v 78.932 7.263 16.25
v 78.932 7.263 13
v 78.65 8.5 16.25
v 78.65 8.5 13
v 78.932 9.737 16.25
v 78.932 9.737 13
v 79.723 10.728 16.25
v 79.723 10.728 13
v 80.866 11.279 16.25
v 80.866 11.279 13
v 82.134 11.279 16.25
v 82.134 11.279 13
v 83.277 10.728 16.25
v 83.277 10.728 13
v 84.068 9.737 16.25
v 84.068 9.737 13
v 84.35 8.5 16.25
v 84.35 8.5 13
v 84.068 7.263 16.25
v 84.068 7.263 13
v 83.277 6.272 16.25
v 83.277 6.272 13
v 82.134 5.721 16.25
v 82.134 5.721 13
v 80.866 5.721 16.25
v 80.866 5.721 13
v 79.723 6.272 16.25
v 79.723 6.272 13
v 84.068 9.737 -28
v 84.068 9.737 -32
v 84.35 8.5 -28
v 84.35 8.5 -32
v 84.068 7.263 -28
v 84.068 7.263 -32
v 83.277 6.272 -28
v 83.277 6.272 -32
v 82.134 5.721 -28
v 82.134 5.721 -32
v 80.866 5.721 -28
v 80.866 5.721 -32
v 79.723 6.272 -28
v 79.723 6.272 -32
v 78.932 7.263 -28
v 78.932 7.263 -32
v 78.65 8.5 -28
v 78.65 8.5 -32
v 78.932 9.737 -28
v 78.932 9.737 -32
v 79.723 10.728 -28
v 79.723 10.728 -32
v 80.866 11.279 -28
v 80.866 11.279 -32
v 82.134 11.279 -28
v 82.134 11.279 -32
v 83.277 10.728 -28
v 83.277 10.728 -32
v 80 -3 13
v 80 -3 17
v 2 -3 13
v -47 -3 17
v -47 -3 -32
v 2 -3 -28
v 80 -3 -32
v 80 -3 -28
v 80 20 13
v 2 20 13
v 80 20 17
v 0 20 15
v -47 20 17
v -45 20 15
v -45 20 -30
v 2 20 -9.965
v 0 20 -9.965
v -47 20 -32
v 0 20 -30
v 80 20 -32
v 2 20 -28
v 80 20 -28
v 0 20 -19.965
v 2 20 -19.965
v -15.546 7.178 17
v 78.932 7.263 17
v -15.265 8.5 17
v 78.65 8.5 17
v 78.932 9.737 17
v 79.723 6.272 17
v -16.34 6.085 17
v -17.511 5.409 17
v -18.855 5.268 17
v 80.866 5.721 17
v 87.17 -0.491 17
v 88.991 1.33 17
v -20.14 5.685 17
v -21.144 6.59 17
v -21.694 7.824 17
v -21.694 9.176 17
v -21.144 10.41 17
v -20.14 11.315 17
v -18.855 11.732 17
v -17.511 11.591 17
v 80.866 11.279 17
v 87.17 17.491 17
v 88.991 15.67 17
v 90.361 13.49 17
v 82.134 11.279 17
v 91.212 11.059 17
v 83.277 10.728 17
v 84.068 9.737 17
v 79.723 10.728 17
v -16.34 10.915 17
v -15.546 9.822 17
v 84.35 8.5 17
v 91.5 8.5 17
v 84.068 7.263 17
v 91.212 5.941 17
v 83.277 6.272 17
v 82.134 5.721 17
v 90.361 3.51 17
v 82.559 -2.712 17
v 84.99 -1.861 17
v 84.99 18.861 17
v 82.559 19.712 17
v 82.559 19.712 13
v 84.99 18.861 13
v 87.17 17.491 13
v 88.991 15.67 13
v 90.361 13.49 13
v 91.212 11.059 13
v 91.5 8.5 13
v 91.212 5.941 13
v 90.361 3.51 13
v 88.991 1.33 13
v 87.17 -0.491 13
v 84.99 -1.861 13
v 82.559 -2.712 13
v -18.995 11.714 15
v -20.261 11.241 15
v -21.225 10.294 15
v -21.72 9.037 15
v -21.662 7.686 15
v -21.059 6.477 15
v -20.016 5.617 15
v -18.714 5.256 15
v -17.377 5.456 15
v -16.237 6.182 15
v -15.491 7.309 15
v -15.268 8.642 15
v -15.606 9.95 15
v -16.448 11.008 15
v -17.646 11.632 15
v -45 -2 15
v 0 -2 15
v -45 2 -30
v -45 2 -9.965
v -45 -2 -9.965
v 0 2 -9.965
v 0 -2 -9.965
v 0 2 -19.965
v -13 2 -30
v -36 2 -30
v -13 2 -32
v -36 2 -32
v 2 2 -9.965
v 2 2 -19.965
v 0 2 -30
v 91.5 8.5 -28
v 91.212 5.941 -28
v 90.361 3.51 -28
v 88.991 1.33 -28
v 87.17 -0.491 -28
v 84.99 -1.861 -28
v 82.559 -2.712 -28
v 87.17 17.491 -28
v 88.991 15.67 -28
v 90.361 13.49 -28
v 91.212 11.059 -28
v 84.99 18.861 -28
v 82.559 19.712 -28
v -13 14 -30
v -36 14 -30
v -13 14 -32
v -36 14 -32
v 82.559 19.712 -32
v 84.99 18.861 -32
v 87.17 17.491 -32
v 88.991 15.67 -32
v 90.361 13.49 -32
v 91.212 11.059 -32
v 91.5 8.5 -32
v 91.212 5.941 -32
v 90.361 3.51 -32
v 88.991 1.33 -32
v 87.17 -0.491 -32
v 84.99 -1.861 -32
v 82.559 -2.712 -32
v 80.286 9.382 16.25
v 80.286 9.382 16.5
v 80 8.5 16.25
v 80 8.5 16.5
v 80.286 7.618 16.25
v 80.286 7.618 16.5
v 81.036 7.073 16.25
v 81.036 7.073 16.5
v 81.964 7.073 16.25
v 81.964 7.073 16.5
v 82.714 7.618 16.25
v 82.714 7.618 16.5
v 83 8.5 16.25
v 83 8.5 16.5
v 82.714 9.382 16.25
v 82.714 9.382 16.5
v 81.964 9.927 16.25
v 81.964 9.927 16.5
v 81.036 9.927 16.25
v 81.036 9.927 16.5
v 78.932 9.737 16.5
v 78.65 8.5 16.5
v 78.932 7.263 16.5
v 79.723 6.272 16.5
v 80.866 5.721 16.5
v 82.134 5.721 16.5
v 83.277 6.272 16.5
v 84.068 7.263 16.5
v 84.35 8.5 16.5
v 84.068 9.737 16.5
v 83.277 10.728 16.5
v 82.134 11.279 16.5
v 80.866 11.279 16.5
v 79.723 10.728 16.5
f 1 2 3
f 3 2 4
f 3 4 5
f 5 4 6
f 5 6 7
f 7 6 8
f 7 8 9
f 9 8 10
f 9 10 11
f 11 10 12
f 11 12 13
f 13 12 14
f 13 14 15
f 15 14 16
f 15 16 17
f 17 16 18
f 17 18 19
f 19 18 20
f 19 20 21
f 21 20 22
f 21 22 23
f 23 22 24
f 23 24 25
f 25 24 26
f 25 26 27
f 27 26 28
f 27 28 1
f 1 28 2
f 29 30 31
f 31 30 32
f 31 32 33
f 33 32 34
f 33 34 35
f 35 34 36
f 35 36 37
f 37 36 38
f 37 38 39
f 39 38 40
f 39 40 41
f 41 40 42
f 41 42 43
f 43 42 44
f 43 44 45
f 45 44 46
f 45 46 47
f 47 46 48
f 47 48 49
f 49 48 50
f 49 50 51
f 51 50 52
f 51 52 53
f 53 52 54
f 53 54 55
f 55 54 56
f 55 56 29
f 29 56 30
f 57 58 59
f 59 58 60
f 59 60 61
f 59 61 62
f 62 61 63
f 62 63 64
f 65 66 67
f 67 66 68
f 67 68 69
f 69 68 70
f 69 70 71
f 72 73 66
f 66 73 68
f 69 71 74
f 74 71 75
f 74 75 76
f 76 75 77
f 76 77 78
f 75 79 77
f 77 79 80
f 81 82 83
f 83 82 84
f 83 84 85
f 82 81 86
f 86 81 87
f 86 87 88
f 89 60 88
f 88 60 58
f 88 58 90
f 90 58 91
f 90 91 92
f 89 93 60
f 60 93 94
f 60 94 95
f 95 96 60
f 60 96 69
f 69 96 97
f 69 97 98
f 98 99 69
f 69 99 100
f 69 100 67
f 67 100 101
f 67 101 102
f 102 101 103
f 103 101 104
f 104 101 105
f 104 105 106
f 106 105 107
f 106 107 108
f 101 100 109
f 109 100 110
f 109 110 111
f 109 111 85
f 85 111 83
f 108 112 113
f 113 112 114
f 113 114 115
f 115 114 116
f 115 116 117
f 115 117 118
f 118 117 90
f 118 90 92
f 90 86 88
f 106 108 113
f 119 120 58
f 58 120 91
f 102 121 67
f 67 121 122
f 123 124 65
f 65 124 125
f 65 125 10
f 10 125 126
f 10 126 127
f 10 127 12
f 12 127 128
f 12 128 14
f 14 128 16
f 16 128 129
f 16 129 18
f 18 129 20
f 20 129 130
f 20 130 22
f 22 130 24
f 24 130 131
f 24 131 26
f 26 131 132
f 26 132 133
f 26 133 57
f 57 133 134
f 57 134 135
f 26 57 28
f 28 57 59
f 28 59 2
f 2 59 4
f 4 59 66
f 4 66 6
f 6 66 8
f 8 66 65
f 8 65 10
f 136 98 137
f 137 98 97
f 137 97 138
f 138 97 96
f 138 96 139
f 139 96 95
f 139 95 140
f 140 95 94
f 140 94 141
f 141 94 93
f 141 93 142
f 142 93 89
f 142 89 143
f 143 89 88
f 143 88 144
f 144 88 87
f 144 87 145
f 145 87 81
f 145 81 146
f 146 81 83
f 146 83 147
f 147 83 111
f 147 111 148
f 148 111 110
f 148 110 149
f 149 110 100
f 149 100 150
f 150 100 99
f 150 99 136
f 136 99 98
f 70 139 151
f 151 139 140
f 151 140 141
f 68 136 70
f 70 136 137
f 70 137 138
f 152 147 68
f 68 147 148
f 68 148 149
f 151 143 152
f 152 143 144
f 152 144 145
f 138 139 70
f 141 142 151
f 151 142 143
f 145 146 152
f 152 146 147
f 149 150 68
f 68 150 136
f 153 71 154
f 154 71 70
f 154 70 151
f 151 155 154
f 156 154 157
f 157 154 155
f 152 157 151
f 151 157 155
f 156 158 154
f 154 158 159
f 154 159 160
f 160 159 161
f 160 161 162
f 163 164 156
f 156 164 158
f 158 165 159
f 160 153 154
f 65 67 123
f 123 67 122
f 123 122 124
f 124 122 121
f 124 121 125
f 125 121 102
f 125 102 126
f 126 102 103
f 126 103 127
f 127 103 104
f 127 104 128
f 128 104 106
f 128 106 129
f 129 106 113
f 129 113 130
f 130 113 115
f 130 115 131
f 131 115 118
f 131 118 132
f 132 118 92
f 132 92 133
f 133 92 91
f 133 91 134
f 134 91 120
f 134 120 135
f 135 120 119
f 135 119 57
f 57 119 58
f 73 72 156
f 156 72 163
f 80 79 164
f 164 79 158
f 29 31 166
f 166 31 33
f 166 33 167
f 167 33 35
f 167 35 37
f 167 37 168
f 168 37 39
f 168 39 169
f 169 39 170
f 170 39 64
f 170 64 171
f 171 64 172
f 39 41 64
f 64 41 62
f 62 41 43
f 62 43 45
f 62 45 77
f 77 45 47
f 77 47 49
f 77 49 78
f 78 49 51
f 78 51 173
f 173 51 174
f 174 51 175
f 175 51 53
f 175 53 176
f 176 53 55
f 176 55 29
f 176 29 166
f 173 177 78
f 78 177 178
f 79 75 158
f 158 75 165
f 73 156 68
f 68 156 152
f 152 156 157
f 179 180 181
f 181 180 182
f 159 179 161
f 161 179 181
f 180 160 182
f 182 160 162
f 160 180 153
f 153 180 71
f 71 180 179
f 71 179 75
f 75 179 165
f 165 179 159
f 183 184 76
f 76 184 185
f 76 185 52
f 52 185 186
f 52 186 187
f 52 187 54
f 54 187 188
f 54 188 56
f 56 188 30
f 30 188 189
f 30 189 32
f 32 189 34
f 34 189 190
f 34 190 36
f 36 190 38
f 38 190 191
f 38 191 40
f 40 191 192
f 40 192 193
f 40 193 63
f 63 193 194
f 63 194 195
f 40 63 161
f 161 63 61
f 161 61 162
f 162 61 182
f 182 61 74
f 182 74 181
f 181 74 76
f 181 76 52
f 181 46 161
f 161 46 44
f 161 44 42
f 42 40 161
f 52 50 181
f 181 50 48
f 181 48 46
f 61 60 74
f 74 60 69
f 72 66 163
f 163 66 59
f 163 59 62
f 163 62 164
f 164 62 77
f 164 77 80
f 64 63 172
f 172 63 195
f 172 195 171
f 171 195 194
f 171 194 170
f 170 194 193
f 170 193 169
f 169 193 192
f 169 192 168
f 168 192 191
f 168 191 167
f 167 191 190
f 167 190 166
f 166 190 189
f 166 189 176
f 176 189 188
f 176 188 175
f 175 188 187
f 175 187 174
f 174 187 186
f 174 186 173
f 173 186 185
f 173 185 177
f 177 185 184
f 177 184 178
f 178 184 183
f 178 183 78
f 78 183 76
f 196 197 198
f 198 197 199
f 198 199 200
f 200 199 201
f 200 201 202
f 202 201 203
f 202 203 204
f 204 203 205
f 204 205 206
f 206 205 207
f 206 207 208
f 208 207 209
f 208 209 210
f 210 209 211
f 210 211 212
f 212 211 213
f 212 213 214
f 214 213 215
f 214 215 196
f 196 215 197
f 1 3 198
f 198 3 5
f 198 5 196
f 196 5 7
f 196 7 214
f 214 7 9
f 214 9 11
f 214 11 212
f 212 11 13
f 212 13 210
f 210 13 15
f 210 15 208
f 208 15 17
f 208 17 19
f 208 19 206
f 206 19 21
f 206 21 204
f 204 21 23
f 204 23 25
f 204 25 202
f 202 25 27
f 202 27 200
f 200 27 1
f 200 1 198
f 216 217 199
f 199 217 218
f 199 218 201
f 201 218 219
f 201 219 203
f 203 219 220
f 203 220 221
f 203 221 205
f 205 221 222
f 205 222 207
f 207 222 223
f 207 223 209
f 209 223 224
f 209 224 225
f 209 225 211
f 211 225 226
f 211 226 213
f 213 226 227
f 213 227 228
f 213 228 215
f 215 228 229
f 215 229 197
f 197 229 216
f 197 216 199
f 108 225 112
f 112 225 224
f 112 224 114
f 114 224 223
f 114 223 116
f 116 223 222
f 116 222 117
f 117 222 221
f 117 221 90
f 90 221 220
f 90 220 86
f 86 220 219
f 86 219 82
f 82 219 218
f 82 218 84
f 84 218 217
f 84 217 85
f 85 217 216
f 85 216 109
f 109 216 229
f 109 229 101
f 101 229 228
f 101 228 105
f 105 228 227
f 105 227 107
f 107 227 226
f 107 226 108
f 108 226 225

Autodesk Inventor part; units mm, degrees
ref_plane "YZ Plane" through (0, 0, 0) normal (1, 0, 0) x (0, 1, 0)
ref_plane "XZ Plane" through (0, 0, 0) normal (0, 1, 0) x (-1, 0, 0)
ref_plane "XY Plane" through (0, 0, 0) normal (0, 0, 1) x (1, 0, 0)
sketch "Szkic1" plane through (0, 0, 0) normal (0, 1, 0) x (-1, 0, 0)
  line L0 (0, 0) -> (45, 0)
  line L1 (45, 0) -> (45, -30)
  line L2 (45, -30) -> (0, -30)
  line L3 (0, -30) -> (0, 0)
  line L4 (45, 0) -> (45, 2)
  line L5 (45, 2) -> (47, 2)
  line L6 (0, -30) -> (0, -32)
  line L7 (0, -32) -> (-2, -32)
  line L8 (-2, -32) -> (47, -32)
  line L9 (47, -32) -> (47, 2)
  line L10 (47, 2) -> (-2, 2)
  line L11 (-2, 2) -> (-2, -32)
  line L12 (47, 2) -> (47, 17)
  line L13 (-2, 2) -> (-2, 17)
  line L14 (-2, 17) -> (47, 17)
  line L15 (-2, 17) -> (-2, 15)
  line L16 (-2, 15) -> (47, 15)
  line L17 (47, 17) -> (47, 14.5669)
  line L18 (0, 2) -> (0, 15)
  line L19 (45, 2) -> (45, 15)
  line L20 (0, 0) -> (0, 2)
  line L21 (45, 0) -> (45, 2)
  dimension "d0" = 45
  dimension "d1" = 30
  dimension "d2" = 2
  dimension "d3" = 2
  dimension "d4" = 2
  dimension "d5" = 2
  dimension "d40" = 15
  dimension "d41" = 15
  dimension "d42" = 2
extrude "Wyciągnięcie proste1" add sketch "Szkic1" along normal blind 20 contours L3 L6 L7 L11 L10 L20 | L4 L5 L9 L8 L6 L2 L1 | L10 L13 L16 L18 | L19 L16 L12 L5 | L16 L13 L14 L12
sketch "Szkic2" plane through (0, 0, 0) normal (0, -1, 0) x (1, 0, 0)
  line L0 (-47, 2) -> (2, 2) projected
  line L1 (-47, -32) -> (-47, 17) projected
  line L2 (2, 2) -> (-47, 2)
  line L3 (-47, 2) -> (-47, -32)
  line L4 (-47, -32) -> (2, -32)
  line L5 (2, -32) -> (2, 2)
  point P0 (0, 0)
extrude "Wyciągnięcie proste2" add sketch "Szkic2" against normal blind 2
sketch "Szkic3" plane through (2, 0, -32) normal (0, 0, -1) x (-1, 0, 0)
  line L0 (40, 2) -> (15, 2)
  line L1 (15, 2) -> (15, 14)
  line L2 (15, 14) -> (40, 14)
  line L3 (40, 14) -> (40, 2)
  line L4 (40, 14) -> (38, 14)
  line L5 (38, 14) -> (38, 2)
  line L6 (38, 2) -> (40, 2)
  line L7 (40, 2) -> (40, 14)
  point P0 (2, 0)
  dimension "d10" = 25
  dimension "d11" = 12
  dimension "d30" = 2
extrude "Wyciągnięcie proste3" cut sketch "Szkic3" against normal blind 4.5 contours L0 L1 L2 L5
sketch "Szkic4" plane through (0, 20, 0) normal (0, 0, -1) x (-1, 0, 0)
  line L0 (38, -6) -> (38, -18) projected
  line L1 (38, -12) -> (28, -12)
  line L2 (28, -12) -> (30.5, -12)
  circle A0 centre (30.5, -12) radius 4.5
  line L3 (13, -6) -> (36, -6) projected
  line L4 (24.5, -6) -> (24.5, -18)
  line L5 (0, -18) -> (45, -18) projected
  line L6 (11, -12) -> (21, -12)
  circle A1 centre (18.5, -12) radius 4.5
  point P0 (0, -20)
  dimension "d14" = 10
  dimension "d15" = 2.5
  dimension "d16" = 9
extrude "Wyciągnięcie proste4" [suppressed]
sketch "Szkic5" plane through (0, 20, 0) normal (0, 1, 0) x (1, 0, 0)
  line L0 (0, 30) -> (0, 0) projected
  line L1 (2, -17) -> (2, 32) projected
  line L2 (0, 9.9645) -> (2, 9.9645)
  line L3 (2, 9.9645) -> (2, 19.9645)
  line L4 (2, 19.9645) -> (0, 19.9645)
  line L5 (0, 19.9645) -> (0, 9.9645)
  point P0 (2, -2)
  dimension "d19" = 10
extrude "Wyciągnięcie proste5" cut sketch "Szkic5" against normal blind 18
sketch "Szkic6" plane through (-47, 0, 2) normal (0, 0, 1) x (1, 0, 0)
  circle A0 centre (28.5, 8) radius 4.5 projected
  line L0 (28.5, 8) -> (28.5, -2)
  circle A1 centre (28.5, 8) radius 3.5
  circle A2 centre (28.5, 8) radius 4.5
  point P0 (47, 0)
  dimension "d22" = 10
  dimension "d27" = 7
sketch "Szkic7" plane through (0, 0, 0) normal (0, -1, 0) x (1, 0, 0)
  line L0 (2, 17) -> (2, -32) projected
  line L1 (-47, -32) -> (2, -32)
  line L2 (2, -32) -> (2, 2)
  line L3 (2, 2) -> (-47, 2)
  line L4 (-47, 2) -> (-47, -32)
  line L5 (-47, 17) -> (2, 17) projected
  line L6 (-47, 0) -> (2, 0)
  line L7 (2, 0) -> (2, 17)
  line L8 (2, 17) -> (-47, 17)
  line L9 (-47, 17) -> (-47, 0)
  point P0 (0, 0)
extrude "Wyciągnięcie proste6" add sketch "Szkic7" along normal blind 3
sketch "Szkic8" plane through (0, 2, 0) normal (0, 1, 0) x (1, 0, 0)
  line L0 (-45, -2) -> (-45, 30) projected
  line L1 (0, 9.9645) -> (0, 0) projected
  line L2 (-45, 0) -> (0, 0)
  line L3 (0, 0) -> (0, 9.9645)
  line L4 (0, 9.9645) -> (-45, 9.9645)
  line L5 (-45, 9.9645) -> (-45, 0)
extrude "Wyciągnięcie proste7" cut sketch "Szkic8" against normal blind 4
extrude "Wyciągnięcie proste8" [suppressed]
sketch "Szkic9" plane through (2, 20, -32) normal (0, 0, -1) x (-1, 0, 0)
  line L0 (15, -6) -> (15, -18) projected
  line L1 (15, -12) -> (20.5, -12)
  circle A0 centre (20.5, -12) radius 3.5
  line L2 (0, -20) -> (0, -23) projected
  line L3 (0, -11.5) -> (29.45, -11.5)
  line L4 (0, -11.5) -> (23.29, -11.5)
  line L5 (23.29, -11.5) -> (20.94, -11.5)
  line L6 (20.94, -11.5) -> (20.94, -12)
  circle A1 centre (20.94, -12) radius 3.5
  point P0 (2, -20)
  point P1 (0, 0)
  dimension "d31" = 5.5
  dimension "d32" = 7
  dimension "d35" = 29.45
  dimension "d36" = 23.29
  dimension "d37" = 2.35
  dimension "d38" = 7
extrude "Wyciągnięcie proste9" cut sketch "Szkic9" against normal blind 47.25 contours A1 L3 A0 | A0 L3 A1 | L3 A0 A1 | A0 L3 A1 picked at (24.181, -11.2212) picked at (22.5407, -11.0097) picked at (22.6367, -12.1539) picked at (24.2617, -12.2698)
sketch "Szkic11" plane through (0, -2, 0) normal (0, 1, 0) x (1, 0, 0)
  line L0 (0, -15) -> (-45, -15) projected
  line L1 (-45, 9.9645) -> (-45, 30) projected
  line L2 (0, -15) -> (-45, -15)
  line L3 (-45, -15) -> (-45, 9.9645)
  line L4 (-45, 9.9645) -> (0, 9.9645)
  line L5 (0, 9.9645) -> (0, -15)
  point P0 (0, 0)
extrude "Wyciągnięcie proste10" cut sketch "Szkic11" along normal blind 43.5
sketch "Szkic12" plane through (-18.94, 8, 15.25) normal (0, 0, -1) x (-1, 0, 0)
  point P0 (-18.94, -8)
sketch "Szkic14" plane through (2, 20, -32) normal (0, 0, -1) x (-1, 0, 0)
  line L0 (0, -23) -> (0, 0) projected
  line L1 (0, -11.5) -> (29.51, -11.5)
  line L2 (0, -11.5) -> (29.51, -11.5) construction
  line L3 (29.51, -11.5) -> (18.2, -11.5)
  line L4 (18.2, -11.5) -> (20.515, -11.5)
  circle A0 centre (20.515, -11.5) radius 3.25
  point P0 (2, -20)
  dimension "d47" = 29.51
  dimension "d48" = 0
  dimension "d49" = 11.31
  dimension "d50" = 2.315
  dimension "d51" = 6.5
extrude "Wyciągnięcie proste11" cut sketch "Szkic14" against normal through all
sketch "Szkic15" plane through (0, 20, 15) normal (0, 0, -1) x (-1, 0, 0)
  arc A0 (20.2611, -8.7589) -> (15.5284, -12.7817) centre (18.515, -11.5) ccw projected
  circle A1 centre (18.515, -11.5) radius 3.25
  arc A2 (15.5284, -12.7817) -> (20.2611, -8.7589) centre (18.94, -12) ccw
  arc A3 (15.5284, -12.7817) -> (20.2611, -8.7589) centre (18.94, -12) ccw projected
  point P0 (0, -20)
  point P1 (15.5284, -12.7817)
extrude "Wyciągnięcie proste12" add sketch "Szkic15" against normal blind 2 contours A2 A1
sketch "Szkic16" plane through (2, 2, -9.9645) normal (1, 0, 0) x (0, 0, -1)
  line L0 (22.0355, 18) -> (22.0355, -5) projected
  line L1 (22.0355, -5) -> (-26.9645, -5) projected
  line L2 (22.0355, 18) -> (18.0355, 18)
  line L3 (18.0355, 18) -> (18.0355, -5)
  line L4 (18.0355, -5) -> (22.0355, -5)
  line L5 (22.0355, -5) -> (22.0355, 18)
  line L6 (-26.9645, 18) -> (-22.9645, 18)
  line L7 (-22.9645, 18) -> (-22.9645, -5)
  line L8 (-22.9645, -5) -> (-26.9645, -5)
  line L9 (-26.9645, -5) -> (-26.9645, 18)
  point P0 (-9.9645, -2)
  point P1 (-22.9645, -5)
  dimension "d56" = 4
  dimension "d57" = 4
sketch "Szkic17" plane through (2, 20, -32) normal (0, 0, -1) x (-1, 0, 0)
  circle A0 centre (20.515, -11.5) radius 3.25 projected
  line L0 (20.515, -11.5) -> (-79.485, -11.5)
  point P0 (2, -20)
  dimension "d58" = 100
extrude "Wyciągnięcie proste13" add sketch "Szkic16" along normal blind 79.5
sketch "Szkic18" plane through (-47, -3, -32) normal (0, 0, -1) x (-1, 0, 0)
  line L0 (-128.5, 0) -> (-128.5, 23) projected
  circle A0 centre (-128.5, 11.5) radius 2.85
  line L1 (-128.5, 11.5) -> (-118.5, 11.5)
  line L2 (-118.5, 11.5) -> (-118.5, 5)
  line L3 (-118.5, 5) -> (-146.5, 5)
  line L4 (-146.5, 18) -> (-118.5, 18)
  line L5 (-118.5, 18) -> (-118.5, 11.5)
  line L6 (-128.5, 18) -> (-128.5, 5)
  line L7 (-138.5, 11.5) -> (-138.5, 5)
  line L8 (-138.5, 5) -> (-110.5, 5)
  line L9 (-110.5, 5) -> (-110.5, 18)
  line L10 (-110.5, 18) -> (-138.5, 18)
  line L11 (-138.5, 18) -> (-138.5, 11.5)
  point P0 (-47, 3)
  dimension "d61" = 5.7
  dimension "d62" = 10
  dimension "d63" = 6.5
  dimension "d64" = 28
  dimension "d65" = 13
sketch "Szkic19" plane through (81.5, 2, -9.9645) normal (1, 0, 0) x (0, 0, -1)
  line L0 (-26.9645, -5) -> (-26.9645, 18) projected
  line L1 (-26.9645, -5) -> (22.0355, -5) projected
  line L2 (-26.9645, 18) -> (-22.9645, 18)
  line L3 (-22.9645, 18) -> (-22.9645, -5)
  line L4 (-22.9645, -5) -> (-26.9645, -5)
  line L5 (-26.9645, -5) -> (-26.9645, 18)
  line L6 (22.0355, 18) -> (18.0355, 18)
  line L7 (18.0355, 18) -> (18.0355, -5)
  line L8 (18.0355, -5) -> (22.0355, -5)
  line L9 (22.0355, -5) -> (22.0355, 18)
  point P0 (-9.9645, -2)
  dimension "d66" = 4
  dimension "d67" = 4
extrude "Wyciągnięcie proste14" add sketch "Szkic19" along normal blind 10
extrude "Wyciągnięcie proste15" cut sketch "Szkic18" against normal blind 11.5 contours A0 L0 | L0 L1 A0 | L0 A0 L1
sketch "Szkic20" plane through (-47, -3, 17) normal (0, 0, 1) x (1, 0, 0)
  point P0 (47, 3)
sketch "Szkic21" plane through (-47, -3, 17) normal (0, 0, 1) x (1, 0, 0)
  circle A0 centre (128.5, 11.5) radius 2.85 projected
  circle A1 centre (128.5, 11.5) radius 2.95
  point P0 (47, 3)
  dimension "d72" = 5.9
extrude "Wyciągnięcie proste16" cut sketch "Szkic21" against normal blind 25.25 contours A0
fillet "Zaokrąglenie1" radius 11.5 4 edges at (91.5, 20, -30) (91.5, -3, -30) (91.5, 20, 15) (91.5, -3, 15)
ref_plane "Płaszczyzna konstrukcyjna2" through (91.5, 8.5, 16.5) normal (0, 0, -1) x (-1, 0, 0)
ref_plane "Płaszczyzna konstrukcyjna1" through (91.5, 8.5, 17) normal (0, 0, -1) x (-1, 0, 0)
sketch "Szkic22" plane through (91.5, 8.5, 16.5) normal (0, 0, -1) x (-1, 0, 0)
  circle A0 centre (10, 0) radius 2.85 projected
  circle A1 centre (10, 0) radius 1.5
  circle A2 centre (10, 0) radius 2.85
  point P0 (91.5, -8.5)
  dimension "d77" = 3
extrude "Wyciągnięcie proste17" add sketch "Szkic22" along normal blind 0.25
sketch "Szkic23" plane through (0, 20, 0) normal (0, 1, 0) x (1, 0, 0)
  point P0 (0, 0)
properties part number "servo_box"
